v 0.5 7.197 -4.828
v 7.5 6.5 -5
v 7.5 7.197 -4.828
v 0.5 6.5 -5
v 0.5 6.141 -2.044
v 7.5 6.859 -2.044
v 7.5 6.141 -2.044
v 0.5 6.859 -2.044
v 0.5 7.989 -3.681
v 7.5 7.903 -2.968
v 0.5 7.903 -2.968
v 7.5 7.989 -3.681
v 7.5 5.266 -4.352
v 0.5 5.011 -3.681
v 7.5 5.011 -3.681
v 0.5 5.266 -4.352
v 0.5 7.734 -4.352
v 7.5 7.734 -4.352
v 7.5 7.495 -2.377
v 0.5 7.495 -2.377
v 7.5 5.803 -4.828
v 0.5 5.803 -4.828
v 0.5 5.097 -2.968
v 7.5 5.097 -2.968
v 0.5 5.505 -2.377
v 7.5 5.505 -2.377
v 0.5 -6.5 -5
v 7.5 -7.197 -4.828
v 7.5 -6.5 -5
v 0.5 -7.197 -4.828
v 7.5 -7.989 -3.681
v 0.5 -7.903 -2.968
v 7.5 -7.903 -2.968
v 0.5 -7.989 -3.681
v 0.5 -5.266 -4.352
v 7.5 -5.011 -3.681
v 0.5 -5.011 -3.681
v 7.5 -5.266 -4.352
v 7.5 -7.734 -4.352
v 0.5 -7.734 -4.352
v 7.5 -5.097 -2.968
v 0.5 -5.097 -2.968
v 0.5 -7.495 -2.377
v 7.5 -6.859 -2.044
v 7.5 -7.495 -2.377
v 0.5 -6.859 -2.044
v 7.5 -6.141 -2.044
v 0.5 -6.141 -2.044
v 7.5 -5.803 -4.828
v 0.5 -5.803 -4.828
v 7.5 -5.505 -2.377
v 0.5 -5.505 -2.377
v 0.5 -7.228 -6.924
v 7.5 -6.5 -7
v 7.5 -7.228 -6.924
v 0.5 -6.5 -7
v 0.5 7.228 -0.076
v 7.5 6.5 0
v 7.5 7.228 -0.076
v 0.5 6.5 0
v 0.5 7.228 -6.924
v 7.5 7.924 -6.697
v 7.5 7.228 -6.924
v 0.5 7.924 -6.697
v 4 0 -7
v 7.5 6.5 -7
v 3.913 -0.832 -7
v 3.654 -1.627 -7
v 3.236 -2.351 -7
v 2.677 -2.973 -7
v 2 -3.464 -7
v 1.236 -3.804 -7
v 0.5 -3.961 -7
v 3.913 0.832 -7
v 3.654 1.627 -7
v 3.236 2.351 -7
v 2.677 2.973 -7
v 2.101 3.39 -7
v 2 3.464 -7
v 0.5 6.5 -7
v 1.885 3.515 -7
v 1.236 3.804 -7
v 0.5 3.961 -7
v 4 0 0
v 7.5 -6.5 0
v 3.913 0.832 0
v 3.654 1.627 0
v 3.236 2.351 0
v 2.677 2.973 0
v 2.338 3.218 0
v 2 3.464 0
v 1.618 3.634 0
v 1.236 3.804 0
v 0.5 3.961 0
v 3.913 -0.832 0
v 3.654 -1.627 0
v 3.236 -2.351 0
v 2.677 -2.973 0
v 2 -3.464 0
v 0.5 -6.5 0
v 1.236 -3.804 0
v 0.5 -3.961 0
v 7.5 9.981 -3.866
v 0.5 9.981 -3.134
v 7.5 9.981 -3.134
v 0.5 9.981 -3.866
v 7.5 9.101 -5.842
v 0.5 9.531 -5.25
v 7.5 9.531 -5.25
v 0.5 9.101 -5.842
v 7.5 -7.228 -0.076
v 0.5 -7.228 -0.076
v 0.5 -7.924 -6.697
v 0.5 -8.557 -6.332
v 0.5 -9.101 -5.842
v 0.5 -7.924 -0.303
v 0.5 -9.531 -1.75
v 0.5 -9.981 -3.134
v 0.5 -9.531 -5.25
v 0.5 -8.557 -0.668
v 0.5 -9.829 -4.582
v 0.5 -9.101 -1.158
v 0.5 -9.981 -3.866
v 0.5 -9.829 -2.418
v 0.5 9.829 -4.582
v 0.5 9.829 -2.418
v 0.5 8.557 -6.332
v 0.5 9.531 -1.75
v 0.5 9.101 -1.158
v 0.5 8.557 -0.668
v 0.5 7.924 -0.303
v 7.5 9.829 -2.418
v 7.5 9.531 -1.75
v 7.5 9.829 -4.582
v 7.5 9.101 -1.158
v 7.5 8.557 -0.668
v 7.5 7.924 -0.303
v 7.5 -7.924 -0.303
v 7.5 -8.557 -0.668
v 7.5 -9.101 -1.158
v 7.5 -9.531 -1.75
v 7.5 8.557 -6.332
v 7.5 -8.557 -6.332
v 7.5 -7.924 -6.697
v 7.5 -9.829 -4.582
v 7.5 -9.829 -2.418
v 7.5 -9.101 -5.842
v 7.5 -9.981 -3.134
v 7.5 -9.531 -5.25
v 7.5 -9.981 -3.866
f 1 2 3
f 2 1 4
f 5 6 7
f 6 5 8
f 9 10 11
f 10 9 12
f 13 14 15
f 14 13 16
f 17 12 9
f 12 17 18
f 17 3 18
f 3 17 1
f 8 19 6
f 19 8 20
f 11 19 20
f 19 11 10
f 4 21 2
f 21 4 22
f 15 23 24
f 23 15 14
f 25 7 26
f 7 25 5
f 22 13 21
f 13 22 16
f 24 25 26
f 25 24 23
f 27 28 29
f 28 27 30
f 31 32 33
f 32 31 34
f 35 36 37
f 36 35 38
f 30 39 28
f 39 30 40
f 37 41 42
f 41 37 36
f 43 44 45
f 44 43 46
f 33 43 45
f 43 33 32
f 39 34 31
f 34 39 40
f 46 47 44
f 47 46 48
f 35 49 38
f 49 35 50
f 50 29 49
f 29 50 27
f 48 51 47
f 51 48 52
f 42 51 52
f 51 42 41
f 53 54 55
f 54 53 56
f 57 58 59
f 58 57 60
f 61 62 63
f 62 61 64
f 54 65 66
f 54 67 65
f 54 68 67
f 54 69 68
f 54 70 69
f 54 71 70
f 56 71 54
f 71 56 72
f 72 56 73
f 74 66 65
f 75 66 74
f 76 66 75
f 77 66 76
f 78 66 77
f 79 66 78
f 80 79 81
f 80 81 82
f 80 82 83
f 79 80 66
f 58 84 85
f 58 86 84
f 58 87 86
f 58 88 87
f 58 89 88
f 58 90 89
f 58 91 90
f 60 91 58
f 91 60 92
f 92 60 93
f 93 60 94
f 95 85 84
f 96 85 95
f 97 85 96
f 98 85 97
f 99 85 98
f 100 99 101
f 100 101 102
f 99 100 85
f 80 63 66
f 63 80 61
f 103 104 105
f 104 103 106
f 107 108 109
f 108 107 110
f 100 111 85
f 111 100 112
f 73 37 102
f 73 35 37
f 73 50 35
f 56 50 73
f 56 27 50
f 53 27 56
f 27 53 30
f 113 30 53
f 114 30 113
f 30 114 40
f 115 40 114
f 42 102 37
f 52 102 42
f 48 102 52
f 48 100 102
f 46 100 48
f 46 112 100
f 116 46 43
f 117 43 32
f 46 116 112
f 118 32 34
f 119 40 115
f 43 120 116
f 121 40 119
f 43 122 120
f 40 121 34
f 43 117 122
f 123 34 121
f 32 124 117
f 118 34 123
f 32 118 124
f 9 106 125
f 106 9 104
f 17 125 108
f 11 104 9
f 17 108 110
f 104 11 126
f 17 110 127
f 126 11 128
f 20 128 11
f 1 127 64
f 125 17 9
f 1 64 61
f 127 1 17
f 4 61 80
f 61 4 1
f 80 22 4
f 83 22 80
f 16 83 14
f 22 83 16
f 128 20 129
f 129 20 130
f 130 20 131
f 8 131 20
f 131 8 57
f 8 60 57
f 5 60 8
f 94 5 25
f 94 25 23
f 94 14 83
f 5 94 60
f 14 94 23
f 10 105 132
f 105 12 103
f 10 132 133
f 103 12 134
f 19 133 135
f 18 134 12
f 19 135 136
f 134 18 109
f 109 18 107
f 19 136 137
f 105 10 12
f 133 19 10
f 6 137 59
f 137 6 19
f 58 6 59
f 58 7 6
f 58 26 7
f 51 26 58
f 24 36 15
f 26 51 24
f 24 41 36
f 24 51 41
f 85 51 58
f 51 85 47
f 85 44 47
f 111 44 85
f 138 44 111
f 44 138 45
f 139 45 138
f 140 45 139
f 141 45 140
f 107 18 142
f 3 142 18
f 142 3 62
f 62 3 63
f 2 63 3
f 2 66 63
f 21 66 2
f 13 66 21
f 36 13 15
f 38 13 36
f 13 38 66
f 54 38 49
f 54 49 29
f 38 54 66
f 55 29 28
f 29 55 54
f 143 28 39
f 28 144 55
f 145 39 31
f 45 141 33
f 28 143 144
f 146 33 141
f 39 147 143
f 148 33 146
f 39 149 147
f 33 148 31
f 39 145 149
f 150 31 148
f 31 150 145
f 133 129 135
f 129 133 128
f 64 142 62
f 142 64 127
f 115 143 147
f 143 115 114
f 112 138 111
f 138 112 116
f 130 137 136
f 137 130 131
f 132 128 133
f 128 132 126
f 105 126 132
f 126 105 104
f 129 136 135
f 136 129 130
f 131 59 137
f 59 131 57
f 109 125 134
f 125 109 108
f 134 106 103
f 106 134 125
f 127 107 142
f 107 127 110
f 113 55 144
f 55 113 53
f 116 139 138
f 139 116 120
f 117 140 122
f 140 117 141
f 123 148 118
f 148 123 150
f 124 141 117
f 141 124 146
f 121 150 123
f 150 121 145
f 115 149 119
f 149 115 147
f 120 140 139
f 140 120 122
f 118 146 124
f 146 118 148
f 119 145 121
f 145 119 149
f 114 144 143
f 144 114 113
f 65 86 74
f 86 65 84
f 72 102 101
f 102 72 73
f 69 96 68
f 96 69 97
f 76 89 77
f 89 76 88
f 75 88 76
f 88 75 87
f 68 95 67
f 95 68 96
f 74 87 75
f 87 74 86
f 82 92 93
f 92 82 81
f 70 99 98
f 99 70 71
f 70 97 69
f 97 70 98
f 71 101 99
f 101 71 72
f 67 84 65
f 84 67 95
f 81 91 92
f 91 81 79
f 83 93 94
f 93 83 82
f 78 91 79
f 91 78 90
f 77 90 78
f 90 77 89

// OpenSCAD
$fs=.75;

rotate(a = [0, 90, 0]) {
	difference() {
		translate(v = [3.5000000000, 0, 0.5000000000]) {
			hull() {
				union() {
					translate(v = [0, 6.5000000000, 0]) {
						cylinder(d = 7, h = 7);
					}
					mirror(v = [0, 1, 0]) {
						translate(v = [0, 6.5000000000, 0]) {
							cylinder(d = 7, h = 7);
						}
					}
				}
			}
		}
		translate(v = [-10, 0, 0]) {
			rotate(a = [0, 90, 0]) {
				cylinder(d = 8.0000000000, h = 20);
			}
		}
		union() {
			translate(v = [3.5000000000, 6.5000000000, 0]) {
				translate(v = [0, 0, -50.0000000000]) {
					cylinder(d = 3, h = 100);
				}
			}
			mirror(v = [0, 1, 0]) {
				translate(v = [3.5000000000, 6.5000000000, 0]) {
					translate(v = [0, 0, -50.0000000000]) {
						cylinder(d = 3, h = 100);
					}
				}
			}
		}
	}
}
/***********************************************
*********      SolidPython code:      **********
************************************************
 
from solid import *
from solid import extensions

class Object:
    pass


rod=Object()
rod.d=8.0

nema17 = Object()
nema17.side = 43.
nema17.holeDistance = 31.0
nema17.screwD= 3.
nema17.height = 34. #47 for the long ones, 34 for the short ones


bearing = Object()
bearing.outD = 15.0
bearing.length = 24.0

# to place the rod supports on top of the nema17
supportDepth=10
xRodHole = cylinder(d=rod.d, h=20).rot(y=90)
xSupport = ( cube([supportDepth,nema17.side,rod.d/2+1]).align('left','bottom')
             - xRodHole.move(z=-.5)
             - cylinder(d=nema17.screwD,h=12).center().move(x=5,y=nema17.holeDistance/2.).mirrorCopy('y')
           ).rot(x=180)


bearingShape = cylinder(d=bearing.outD, h= bearing.length+1).center()

#minimal y cart, z motor will be placed in between the rails
yRodDistance = 60.0 # rounding up from nema17.side + bearing.outD
wall=2.0
cartWidth = 2*bearing.length
yBearings = bearingShape.move(z=bearing.length/2).mirrorCopy('z').move(x=yRodDistance/2).mirrorCopy('x')
yCart = ( ( cylinder(d= bearing.outD + 2*wall, h= cartWidth).center().rot(x=90).move(x=yRodDistance/2).mirrorCopy('x')
          + cube([yRodDistance, cartWidth, bearing.outD/2+wall]).align('bottom').move(z=-bearing.outD/2-wall)
          + cube([yRodDistance+bearing.outD+2*wall, cartWidth, bearing.outD/2+wall]).align('top').move(z=bearing.outD/2+wall)

          ) - yBearings.rot(x=90)
            - cube([nema17.side, cartWidth, bearing.outD/2-3]).align('top')
            - cube([nema17.side, cartWidth, bearing.outD]).align('bottom')
            - cube([yRodDistance+20, cartWidth, 3]).align('bottom').move(z=-bearing.outD/2-wall)
            - cylinder(d=3,h=10).move([nema17.holeDistance/2, nema17.holeDistance/2, -bearing.outD/2]).mirrorCopy('x').mirrorCopy('y').debug()
            - cylinder(d=nema17.holeDistance, h =10).move(z=-bearing.outD/2)
          )



#supports for holding the y rods in from the x bearings
bearingCover = cylinder(d= bearing.outD + 2*wall, h= bearing.length).center().rot(y=90)
baseBlock = hull( bearingCover
                  + cube([bearing.outD+2,10,bearing.outD+2]).align('back').move(y=bearing.outD/2+wall))
capScrews = cylinder(d=3., h=bearing.outD + 2*wall).center().move(x=rod.d/2+3./2+1,y=12).mirrorCopy('x')
rodHole = cylinder(d=rod.d,h=10).rot(x=-90).move(y=bearing.outD/2+wall)
#capTopBase = cube([bearing.length, 11, bearing.outD]).center('x').move(y=bearing.outD/2+wall)
#capTopBase = polygon([[0,0],[0,10],[10,10],[10,-3]]).linear_extrude(bearing.length,True).rot(y=-90).move(y=bearing.outD/2+wall)
capTopBase = cube([bearing.length, 20, bearing.outD]).center('x')-bearingCover

baseSupport = baseBlock - rodHole - capScrews

ySupport = part(cylinder(d= bearing.outD + 2*wall, h= yRodDistance + bearing.length).center().rot(y=90)
                 - hole(cylinder(d= bearing.outD, h= yRodDistance + bearing.length).center().rot(y=90))
                 + ( baseSupport
                     * cube(50).align('top')
                   ).move(x=yRodDistance/2).mirrorCopy('x')
                 - cube(1000).align('top').move(z=-bearing.outD/2+1)
                 )

ySupportRodCap = ( baseSupport
                * capTopBase
                - cube([bearing.length,50,1]).align('bottom')
                - cube([bearing.length,10,10]).center('xy')
                )

#support for z rods placed on the falt surface of the yCart above the bearings
zRodDistance = 31.
rodSupport = (cylinder(d=rod.d + 3, h=6) - cylinder(d=rod.d, h=6+1)).move(y=zRodDistance / 2)
beltGuide = ( cube([bearing.outD, bearing.length-zRodDistance/2, 6]).center('x')
              - cylinder(d=rod.d + 6,h=6+1)
              - cube([1,20,6+1]).center('x')).move(y=zRodDistance/2)
zSupport = ( cube([bearing.outD,2*bearing.length,wall]).center('xy')
             + rodSupport.move(z=wall).mirrorCopy('y')
             + beltGuide.move(z=wall).mirrorCopy('y')
           )

zstepper = cube([nema17.side,nema17.side,34]).center('xy').move(z=-bearing.outD/2).color('gray')


yCartZSupport = yCart + zSupport.move(x=yRodDistance/2 ,z=bearing.outD/2)


def xTailBase(h):
    return hull([cylinder(d=3+4,h=h).move(x= 4, y=3./2+rod.d/2+1).mirrorCopy('y'),
                 cylinder(d=4+6, h=h).move(x=-3)
                ]).move(z=.5)

capScrewHoles = cylinder(d=3,h=100).center().move(x= 4, y=3./2+rod.d/2+1).mirrorCopy('y')
pulleyScrewHole = cylinder(d=4,h=100).center().move(x= -3)
nutCuts = (cylinder(d=3+4,h=nema17.height-7).move(x= 4, y=3./2+rod.d/2+1).mirrorCopy('y')
          + cylinder(d=4+6, h=nema17.height-7).move(x=-3)).move(z=7)
xTailSupport = ( xTailBase(nema17.height+1.5+rod.d/2.)
                 - xRodHole
                 - capScrewHoles
                 - pulleyScrewHole
                 - nutCuts
               )
xTailCap = ( xTailBase(7)
             - xRodHole
             - capScrewHoles
             - pulleyScrewHole
            )

def xFrontBase(h):
    return hull([cylinder(d=3+4,h=h).move(y=3./2+rod.d/2+1).mirrorCopy('y'),
                ]).move(x=3.5,z=.5)

capScrewHoles = cylinder(d=3,h=100).center().move(x=3.5,y=3./2+rod.d/2+1).mirrorCopy('y')
nutCuts = (cylinder(d=3+4,h=nema17.height-7).move(x=3.5,y=3./2+rod.d/2+1).mirrorCopy('y')
          ).move(z=7)
xSupportH=nema17.height+1.5+rod.d/2.
nemaSupport = ( hull(cylinder(d=3+4,h=1.5).move(x=-(nema17.side-nema17.holeDistance)/2,y=nema17.holeDistance/2,z=xSupportH-1.5-nema17.height).mirrorCopy('y')
                     + cylinder(d=3+4,h=xSupportH-nema17.height-.5).move(y=3./2+rod.d/2+1).mirrorCopy('y').move(x=3.5,z=.5)
                    )
                - cylinder(d=3,h=10).move(x=-(nema17.side-nema17.holeDistance)/2,y=nema17.holeDistance/2).mirrorCopy('y'))
xFrontSupport = ( xFrontBase(xSupportH)
                 + nemaSupport
                 - xRodHole.move(x=-10)
                 - capScrewHoles
                 - nutCuts
               )
xFrontCap = ( xFrontBase(7)
             - xRodHole.move(x=-10)
             - capScrewHoles
            )


zTopH=5.
zBearingD = 16.
zTopBase = hull(cylinder(d=rod.d+6,h=zTopH).move(y=zRodDistance/2).mirrorCopy('y')
            +cylinder(d=zBearingD+6,h=zTopH).move(x=-yRodDistance/2))
zHoles =  (cylinder(d=rod.d,h=zTopH).move(y=zRodDistance/2).mirrorCopy('y')
           + cylinder(d=zBearingD,h=zTopH).move(x=-yRodDistance/2))
zTop = zTopBase - zHoles




zNutD0 = 10.
zNutD1 = 22.
zNutH0 = 10.
drillD = 36.

base = ( hull(cylinder(d=bearing.outD+6,h=bearing.length).move(y=zRodDistance/2).mirrorCopy('y')
              + cylinder(d=zNutD1+2,h=bearing.length).move(x=-yRodDistance/2)
              + cylinder(d=drillD+6,h=bearing.length).move(x=drillD/2+5)
              + cube([.1,25,zNutH0]).center('y').move(x=drillD+5)
              )
            + cube([8,25,zNutH0]).center('y').move(x=drillD+5)
        )

holes =  (cylinder(d=bearing.outD, h=bearing.length).move(y=zRodDistance/2).mirrorCopy('y')
           + cylinder(d=zNutD0+1,h=bearing.length).move(x=-yRodDistance/2)
           + cylinder(d=drillD,h=bearing.length).move(x=drillD/2+5)
           + cube([20,2,zNutH0]).center('xy').move(x=drillD+7)
           + cylinder(d=3,h=30).center().rot(x=90).move(x=drillD+9,z=zNutH0/2).debug()
           )

zNutDrills = cylinder(d=3,h=bearing.length).move(x=17./2).rot(z=45).mirrorCopy('y').mirrorCopy('x').move(x=-yRodDistance/2)

def ushape(p,f=.5):
    return (cylinder(d=100.*f,h=100.).center().rot(x=90)-cube([500.*f,100,100]).center('yz')
            +cube([50.*(1-f),100.,100.*f]).center('yz')

           ).move(x=(.5-f)*-50).resize(p)

pD=[40,60,30]
pN=[35,60,30]
profileCuts = (ushape(pD,.5).move(x=pD[0]/2+bearing.outD/2,z=pD[2]/2+zNutH0)+
           ushape(pN,.4).mirror('x').move(x=-pN[0]/2-bearing.outD/2,z=pN[2]/2+zNutH0)
          )

sideCuts = cube([100,20,bearing.length]).center('x').move(y=zRodDistance/2+bearing.outD/2-1).mirrorCopy('y')

zDrillCart_ = base - holes - zNutDrills  - profileCuts

zDrillCart = zDrillCart_.copy() #- sideCuts
zDrillCart0 = zDrillCart_.copy().intersection(cube([60,60,bearing.length]).center('y').move(x=-bearing.outD/2+1))

scene = xFrontSupport +xFrontCap.move(x=-20)


'''
scene = ( xSupport.move(x=-100)
          + ySupport + ySupportRodCap.move(x=-yRodDistance / 2, z=3)
          + (yCartZSupport ).move(y=50)
        )
'''
scad_render_to_file(scene, 'routerParts.scad', '$fs=.75;')

#scad_render_to_file(xSupport, 'routerParts_xSupport.scad', '$fs=.75;')
#scad_render_to_file(ySupport, 'routerParts_ySupport.scad', '$fs=.75;')
#scad_render_to_file(ySupportRodCap, 'routerParts_ySupportCap.scad', '$fs=.75;')
#scad_render_to_file(yCartZSupport, 'routerParts_yCart.scad', '$fs=.75;')
#scad_render_to_file( xTailSupport.rot(y=90), 'routerParts_xTailSupport.scad', '$fs=.75;')
#scad_render_to_file( xTailCap.rot(y=90), 'routerParts_xTailCap.scad', '$fs=.75;')
scad_render_to_file( xFrontSupport.rot(y=90), 'routerParts_xFrontSupport.scad', '$fs=.75;')
scad_render_to_file( xFrontCap.rot(y=90), 'routerParts_xFrontCap.scad', '$fs=.75;')
#scad_render_to_file( zTop, 'routerParts_zTop.scad', '$fs=.75;')
#scad_render_to_file( zDrillCart, 'routerParts_zDrillCart.scad', '$fs=.75;')
#scad_render_to_file( zDrillCart0, 'routerParts_zDrillCart0.scad', '$fs=.75;')
 
 
************************************************/
